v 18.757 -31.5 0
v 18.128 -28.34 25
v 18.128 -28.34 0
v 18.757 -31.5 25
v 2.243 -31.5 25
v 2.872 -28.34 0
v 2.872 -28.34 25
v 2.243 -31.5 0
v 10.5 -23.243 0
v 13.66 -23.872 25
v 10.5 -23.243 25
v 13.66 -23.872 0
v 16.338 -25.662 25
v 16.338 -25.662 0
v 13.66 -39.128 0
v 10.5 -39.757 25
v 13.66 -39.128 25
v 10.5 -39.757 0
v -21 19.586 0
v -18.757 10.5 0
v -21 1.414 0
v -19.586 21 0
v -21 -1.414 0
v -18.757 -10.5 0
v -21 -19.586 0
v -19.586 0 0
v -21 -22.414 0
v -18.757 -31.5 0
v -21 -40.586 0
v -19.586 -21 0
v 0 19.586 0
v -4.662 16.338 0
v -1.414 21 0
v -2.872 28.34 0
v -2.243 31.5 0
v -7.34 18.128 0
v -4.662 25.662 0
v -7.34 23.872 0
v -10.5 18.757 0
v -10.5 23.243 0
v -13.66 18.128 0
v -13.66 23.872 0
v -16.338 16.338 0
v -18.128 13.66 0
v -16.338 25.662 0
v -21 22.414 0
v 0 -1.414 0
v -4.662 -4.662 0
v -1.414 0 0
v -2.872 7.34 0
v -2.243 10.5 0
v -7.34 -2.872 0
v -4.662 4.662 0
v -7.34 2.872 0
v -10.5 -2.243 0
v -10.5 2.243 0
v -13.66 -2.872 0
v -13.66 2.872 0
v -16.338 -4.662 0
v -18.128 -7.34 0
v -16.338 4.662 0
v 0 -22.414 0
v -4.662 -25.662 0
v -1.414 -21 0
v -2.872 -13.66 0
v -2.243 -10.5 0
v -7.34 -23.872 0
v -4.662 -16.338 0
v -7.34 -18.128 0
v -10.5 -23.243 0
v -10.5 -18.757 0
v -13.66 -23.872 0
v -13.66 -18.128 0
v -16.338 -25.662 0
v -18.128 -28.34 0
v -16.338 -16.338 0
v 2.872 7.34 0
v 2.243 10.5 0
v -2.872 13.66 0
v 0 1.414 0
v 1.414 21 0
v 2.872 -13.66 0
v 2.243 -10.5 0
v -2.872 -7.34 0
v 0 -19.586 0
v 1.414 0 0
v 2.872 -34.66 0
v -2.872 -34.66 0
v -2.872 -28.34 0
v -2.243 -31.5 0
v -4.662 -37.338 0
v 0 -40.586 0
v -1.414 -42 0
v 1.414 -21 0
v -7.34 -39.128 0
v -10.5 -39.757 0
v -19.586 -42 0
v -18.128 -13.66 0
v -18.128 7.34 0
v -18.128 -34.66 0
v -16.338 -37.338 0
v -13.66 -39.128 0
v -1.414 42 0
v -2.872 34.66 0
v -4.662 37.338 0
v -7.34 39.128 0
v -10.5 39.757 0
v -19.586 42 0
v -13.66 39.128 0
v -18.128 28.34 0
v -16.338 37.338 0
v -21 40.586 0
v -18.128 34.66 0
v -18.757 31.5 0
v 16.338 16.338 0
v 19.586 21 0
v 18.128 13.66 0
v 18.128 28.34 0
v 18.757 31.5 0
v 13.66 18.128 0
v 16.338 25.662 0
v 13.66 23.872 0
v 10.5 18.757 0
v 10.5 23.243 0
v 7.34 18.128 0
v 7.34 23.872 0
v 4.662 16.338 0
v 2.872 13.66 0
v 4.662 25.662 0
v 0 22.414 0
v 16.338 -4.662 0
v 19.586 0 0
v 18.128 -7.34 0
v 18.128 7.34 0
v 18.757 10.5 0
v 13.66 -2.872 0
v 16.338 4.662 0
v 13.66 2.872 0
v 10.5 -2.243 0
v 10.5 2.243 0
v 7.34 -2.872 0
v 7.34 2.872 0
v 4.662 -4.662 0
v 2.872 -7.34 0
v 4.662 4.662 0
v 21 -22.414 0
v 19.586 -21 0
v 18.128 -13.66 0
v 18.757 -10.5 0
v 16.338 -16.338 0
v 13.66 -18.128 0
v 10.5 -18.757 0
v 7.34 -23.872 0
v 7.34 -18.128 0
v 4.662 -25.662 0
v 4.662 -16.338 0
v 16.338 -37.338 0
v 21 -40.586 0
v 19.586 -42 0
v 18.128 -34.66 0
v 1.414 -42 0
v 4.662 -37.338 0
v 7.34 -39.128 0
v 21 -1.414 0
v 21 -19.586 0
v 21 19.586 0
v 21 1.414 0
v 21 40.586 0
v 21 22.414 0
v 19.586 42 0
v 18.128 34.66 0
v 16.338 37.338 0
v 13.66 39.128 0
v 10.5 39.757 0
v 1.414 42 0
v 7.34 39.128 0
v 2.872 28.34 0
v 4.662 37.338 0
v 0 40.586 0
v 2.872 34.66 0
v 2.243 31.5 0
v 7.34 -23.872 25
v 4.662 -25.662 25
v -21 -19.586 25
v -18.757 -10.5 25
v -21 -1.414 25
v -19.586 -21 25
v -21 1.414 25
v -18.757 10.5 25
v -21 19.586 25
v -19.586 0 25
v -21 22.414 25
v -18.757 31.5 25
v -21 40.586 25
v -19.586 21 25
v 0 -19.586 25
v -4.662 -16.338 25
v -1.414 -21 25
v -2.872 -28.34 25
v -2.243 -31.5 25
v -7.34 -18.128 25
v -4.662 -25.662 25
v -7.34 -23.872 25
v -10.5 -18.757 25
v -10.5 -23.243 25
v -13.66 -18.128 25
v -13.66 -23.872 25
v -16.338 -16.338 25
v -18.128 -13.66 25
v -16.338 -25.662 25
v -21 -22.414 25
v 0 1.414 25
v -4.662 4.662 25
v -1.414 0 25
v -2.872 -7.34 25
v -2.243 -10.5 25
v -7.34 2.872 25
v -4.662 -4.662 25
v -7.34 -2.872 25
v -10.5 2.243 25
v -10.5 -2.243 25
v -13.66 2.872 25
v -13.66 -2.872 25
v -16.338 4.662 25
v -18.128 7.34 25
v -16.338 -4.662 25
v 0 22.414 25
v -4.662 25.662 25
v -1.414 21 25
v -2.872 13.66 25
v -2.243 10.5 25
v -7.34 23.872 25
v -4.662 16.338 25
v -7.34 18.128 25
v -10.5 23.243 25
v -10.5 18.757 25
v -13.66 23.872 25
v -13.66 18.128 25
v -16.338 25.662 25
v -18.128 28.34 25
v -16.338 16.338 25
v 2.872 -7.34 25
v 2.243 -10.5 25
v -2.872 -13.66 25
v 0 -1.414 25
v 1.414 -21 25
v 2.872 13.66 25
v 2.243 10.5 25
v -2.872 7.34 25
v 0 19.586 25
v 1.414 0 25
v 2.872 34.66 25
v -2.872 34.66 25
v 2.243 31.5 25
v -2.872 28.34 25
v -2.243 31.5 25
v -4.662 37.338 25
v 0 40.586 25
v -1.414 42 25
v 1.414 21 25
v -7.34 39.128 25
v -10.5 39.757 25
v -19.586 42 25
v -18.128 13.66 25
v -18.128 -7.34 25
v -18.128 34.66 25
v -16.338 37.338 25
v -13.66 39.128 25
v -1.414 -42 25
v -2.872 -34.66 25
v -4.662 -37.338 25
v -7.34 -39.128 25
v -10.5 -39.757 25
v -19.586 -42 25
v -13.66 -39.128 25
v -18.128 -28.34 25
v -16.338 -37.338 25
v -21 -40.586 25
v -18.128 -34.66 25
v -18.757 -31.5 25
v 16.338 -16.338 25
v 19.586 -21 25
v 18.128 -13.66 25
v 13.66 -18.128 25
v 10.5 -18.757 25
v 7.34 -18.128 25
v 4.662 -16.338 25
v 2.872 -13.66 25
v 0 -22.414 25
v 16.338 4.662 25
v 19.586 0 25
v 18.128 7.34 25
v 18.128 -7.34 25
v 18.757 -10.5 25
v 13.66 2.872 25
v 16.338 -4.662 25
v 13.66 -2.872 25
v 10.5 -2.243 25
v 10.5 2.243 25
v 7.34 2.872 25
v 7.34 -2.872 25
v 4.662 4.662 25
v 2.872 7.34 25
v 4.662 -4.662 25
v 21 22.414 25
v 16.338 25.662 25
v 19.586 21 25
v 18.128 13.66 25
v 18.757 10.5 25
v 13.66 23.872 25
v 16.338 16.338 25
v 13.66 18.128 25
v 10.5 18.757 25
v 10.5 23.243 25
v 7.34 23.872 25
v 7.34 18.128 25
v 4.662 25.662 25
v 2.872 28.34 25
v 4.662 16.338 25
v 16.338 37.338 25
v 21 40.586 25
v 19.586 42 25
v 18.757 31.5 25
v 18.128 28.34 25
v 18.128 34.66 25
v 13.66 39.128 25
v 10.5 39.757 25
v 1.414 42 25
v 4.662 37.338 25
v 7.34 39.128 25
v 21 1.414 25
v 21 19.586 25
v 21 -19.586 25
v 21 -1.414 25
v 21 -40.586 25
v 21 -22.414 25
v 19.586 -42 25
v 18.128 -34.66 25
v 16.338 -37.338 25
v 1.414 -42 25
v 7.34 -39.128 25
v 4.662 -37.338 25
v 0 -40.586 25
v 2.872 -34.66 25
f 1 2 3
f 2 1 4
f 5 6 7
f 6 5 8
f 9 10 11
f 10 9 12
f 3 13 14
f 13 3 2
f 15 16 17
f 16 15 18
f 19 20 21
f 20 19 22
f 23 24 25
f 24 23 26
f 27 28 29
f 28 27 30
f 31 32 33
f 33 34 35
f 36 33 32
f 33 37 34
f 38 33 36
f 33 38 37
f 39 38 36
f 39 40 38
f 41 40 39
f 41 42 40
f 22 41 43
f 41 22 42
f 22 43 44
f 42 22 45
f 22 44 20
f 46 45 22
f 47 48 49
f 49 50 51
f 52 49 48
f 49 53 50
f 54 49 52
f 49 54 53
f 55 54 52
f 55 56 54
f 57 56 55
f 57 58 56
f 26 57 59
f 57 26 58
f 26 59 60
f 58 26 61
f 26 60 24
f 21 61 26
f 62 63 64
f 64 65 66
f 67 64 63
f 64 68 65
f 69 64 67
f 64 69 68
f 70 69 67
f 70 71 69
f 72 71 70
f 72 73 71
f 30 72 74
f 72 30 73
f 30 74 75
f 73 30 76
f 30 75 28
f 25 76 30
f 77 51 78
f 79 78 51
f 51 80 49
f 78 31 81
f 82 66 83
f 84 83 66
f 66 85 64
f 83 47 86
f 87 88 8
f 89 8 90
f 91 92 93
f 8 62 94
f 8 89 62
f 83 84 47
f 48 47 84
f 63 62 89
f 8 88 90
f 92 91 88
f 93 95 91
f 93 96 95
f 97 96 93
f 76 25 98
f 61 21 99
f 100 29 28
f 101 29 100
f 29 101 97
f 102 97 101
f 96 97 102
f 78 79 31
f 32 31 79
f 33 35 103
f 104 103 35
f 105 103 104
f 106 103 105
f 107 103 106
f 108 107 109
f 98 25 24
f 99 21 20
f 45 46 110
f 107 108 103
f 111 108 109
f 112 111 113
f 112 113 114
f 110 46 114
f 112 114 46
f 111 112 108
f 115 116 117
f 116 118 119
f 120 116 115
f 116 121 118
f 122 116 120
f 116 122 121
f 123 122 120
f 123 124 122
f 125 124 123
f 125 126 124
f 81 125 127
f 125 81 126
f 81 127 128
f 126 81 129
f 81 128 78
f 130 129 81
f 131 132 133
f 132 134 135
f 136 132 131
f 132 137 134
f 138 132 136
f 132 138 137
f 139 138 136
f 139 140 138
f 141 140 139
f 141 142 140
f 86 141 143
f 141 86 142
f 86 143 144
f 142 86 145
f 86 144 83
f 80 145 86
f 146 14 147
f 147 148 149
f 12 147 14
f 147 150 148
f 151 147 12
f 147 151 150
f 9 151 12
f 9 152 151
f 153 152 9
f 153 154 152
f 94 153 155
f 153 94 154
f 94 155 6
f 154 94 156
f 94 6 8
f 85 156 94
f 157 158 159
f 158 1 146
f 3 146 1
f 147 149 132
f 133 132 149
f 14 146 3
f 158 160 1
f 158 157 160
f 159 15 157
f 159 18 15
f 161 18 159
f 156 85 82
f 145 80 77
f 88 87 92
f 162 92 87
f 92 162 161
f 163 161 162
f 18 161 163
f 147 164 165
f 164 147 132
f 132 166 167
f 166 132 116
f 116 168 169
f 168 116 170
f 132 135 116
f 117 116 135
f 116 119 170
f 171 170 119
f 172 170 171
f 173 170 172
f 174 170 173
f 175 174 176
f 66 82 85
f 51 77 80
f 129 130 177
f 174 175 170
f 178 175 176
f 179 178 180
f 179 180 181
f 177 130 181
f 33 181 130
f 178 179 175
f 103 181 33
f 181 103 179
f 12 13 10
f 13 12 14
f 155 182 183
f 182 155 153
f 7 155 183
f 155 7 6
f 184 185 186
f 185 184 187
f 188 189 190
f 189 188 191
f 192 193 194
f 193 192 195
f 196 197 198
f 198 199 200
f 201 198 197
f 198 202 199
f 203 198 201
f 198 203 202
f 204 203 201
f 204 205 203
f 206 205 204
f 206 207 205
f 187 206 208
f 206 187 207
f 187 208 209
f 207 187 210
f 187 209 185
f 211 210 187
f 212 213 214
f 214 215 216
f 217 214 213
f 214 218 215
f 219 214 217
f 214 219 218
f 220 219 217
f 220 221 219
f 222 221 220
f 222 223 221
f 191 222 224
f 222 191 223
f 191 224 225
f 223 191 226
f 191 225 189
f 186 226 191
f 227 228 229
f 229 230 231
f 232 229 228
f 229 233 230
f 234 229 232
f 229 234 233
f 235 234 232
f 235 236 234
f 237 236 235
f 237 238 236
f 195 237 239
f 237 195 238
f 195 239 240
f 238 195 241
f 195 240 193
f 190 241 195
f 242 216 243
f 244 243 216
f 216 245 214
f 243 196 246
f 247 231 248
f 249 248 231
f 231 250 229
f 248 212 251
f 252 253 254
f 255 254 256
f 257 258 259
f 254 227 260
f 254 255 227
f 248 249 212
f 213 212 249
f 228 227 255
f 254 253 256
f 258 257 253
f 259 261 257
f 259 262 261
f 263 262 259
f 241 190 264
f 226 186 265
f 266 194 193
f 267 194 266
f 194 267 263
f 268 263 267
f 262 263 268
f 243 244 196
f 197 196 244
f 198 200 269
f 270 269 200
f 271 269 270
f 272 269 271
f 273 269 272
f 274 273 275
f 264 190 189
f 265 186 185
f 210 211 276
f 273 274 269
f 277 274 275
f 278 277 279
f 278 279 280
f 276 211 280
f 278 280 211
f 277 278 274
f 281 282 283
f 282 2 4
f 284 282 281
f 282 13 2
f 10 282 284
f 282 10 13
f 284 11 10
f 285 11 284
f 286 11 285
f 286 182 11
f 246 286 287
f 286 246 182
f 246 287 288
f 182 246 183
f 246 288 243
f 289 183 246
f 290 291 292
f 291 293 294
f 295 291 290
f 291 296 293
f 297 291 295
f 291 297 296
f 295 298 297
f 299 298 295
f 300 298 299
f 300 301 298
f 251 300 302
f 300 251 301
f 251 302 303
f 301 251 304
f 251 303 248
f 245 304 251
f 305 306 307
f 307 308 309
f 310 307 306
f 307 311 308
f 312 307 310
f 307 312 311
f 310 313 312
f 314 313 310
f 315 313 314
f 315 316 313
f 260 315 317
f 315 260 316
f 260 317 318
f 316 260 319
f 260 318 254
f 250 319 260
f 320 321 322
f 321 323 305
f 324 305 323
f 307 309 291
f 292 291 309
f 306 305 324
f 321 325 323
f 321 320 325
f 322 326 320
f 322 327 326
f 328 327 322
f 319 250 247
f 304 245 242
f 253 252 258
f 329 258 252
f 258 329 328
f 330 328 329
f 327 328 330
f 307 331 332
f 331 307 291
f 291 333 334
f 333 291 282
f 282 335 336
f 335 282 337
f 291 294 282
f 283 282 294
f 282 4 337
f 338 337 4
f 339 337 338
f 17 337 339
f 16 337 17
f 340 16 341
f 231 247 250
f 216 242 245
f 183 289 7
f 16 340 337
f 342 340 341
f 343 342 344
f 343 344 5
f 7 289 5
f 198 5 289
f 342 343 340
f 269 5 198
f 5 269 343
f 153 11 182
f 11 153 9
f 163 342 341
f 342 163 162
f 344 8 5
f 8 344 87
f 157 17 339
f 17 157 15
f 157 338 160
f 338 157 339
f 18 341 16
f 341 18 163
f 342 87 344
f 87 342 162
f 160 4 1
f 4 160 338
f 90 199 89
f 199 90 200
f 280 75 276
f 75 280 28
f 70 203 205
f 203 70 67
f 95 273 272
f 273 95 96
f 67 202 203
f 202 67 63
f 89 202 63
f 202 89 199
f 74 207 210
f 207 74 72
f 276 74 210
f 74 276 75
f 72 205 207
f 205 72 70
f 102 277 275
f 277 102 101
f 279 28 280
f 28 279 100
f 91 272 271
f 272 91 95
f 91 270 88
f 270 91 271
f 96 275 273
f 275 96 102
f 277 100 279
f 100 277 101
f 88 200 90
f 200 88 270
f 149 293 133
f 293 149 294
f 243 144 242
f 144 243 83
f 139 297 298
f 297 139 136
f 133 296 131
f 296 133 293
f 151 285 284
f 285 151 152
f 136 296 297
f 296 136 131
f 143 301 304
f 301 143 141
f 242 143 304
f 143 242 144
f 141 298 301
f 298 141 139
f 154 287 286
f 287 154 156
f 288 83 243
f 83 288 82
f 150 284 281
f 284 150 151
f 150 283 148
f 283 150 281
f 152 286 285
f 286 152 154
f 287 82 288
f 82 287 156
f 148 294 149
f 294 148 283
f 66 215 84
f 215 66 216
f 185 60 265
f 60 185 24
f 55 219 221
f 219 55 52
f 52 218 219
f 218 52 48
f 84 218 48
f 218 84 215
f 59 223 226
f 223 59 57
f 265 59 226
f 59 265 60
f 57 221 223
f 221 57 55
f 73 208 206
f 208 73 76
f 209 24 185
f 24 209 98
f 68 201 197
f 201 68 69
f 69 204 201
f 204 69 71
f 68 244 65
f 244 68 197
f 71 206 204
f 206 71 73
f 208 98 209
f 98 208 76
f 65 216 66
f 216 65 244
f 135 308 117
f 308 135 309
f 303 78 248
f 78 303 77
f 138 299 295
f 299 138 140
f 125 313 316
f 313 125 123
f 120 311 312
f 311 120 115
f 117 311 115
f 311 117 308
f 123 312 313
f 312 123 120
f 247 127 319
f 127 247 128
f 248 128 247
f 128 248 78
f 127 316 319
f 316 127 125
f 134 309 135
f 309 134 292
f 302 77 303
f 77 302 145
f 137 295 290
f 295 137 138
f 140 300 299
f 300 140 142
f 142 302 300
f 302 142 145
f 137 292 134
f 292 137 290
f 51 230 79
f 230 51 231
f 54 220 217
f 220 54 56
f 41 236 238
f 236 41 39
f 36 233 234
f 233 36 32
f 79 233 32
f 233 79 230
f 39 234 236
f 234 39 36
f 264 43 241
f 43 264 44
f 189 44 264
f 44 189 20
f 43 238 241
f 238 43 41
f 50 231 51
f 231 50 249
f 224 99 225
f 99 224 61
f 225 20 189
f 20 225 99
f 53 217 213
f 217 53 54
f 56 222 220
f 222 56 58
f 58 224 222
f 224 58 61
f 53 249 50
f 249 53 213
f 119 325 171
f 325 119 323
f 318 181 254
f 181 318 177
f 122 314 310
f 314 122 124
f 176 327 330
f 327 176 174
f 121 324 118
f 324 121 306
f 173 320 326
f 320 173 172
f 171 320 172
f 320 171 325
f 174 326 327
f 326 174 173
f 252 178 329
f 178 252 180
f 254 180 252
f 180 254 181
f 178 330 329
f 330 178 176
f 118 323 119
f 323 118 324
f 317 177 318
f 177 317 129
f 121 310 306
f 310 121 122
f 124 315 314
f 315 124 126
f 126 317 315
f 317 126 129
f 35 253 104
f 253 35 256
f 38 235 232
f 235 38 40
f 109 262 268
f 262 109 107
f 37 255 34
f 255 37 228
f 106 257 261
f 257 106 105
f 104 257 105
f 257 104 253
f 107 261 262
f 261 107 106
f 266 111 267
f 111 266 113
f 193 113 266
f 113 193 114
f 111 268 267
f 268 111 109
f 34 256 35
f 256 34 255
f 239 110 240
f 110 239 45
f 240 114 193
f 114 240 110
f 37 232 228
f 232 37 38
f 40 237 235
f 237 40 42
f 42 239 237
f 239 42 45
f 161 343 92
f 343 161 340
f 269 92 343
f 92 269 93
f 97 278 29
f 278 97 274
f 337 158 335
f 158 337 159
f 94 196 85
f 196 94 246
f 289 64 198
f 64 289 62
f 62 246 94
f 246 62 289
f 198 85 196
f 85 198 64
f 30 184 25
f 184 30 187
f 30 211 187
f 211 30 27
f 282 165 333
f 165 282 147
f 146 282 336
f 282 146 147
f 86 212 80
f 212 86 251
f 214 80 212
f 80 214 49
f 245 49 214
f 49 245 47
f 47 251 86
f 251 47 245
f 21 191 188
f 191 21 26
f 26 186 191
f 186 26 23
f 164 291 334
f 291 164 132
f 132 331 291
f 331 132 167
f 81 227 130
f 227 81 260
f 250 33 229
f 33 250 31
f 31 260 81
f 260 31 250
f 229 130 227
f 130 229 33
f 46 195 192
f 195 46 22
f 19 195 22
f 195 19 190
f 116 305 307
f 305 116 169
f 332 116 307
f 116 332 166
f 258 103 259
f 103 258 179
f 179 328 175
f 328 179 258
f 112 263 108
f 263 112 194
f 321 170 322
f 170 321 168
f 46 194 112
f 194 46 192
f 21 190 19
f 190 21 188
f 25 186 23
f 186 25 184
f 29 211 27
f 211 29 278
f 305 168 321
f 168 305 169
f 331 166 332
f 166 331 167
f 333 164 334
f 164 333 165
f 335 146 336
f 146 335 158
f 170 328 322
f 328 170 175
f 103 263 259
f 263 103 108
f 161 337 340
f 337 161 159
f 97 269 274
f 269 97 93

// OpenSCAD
// file: zcube.scad
// This function creates a cube with a given x/y either above (f=1) or below (f=-1) the z axis.
module zcube(dimensions, z=0, f=1, x=0, y=0, bom=false) {
	if (bom) {
		echo(bom, dimensions);
	}
	
	translate([x*dimensions[0]/2, y*dimensions[1]/2, dimensions[2]/2 * f + z]) cube(dimensions, true);
}

module zring(dimensions, thickness, z=0, f=1) {
	render() difference() {
		zcube([dimensions[0]+thickness/2, dimensions[1]+thickness/2, dimensions[2]], z=z, f=f);
		zcube([dimensions[0]-thickness/2, dimensions[1]-thickness/2, dimensions[2]], z=z, f=f);
	}
}

module rcube(dimensions, d, z=0, f=1) {
	dx = dimensions[0]/2 - d/2;
	dy = dimensions[1]/2 - d/2;
	dz = dimensions[2]/2 * (f-1) + z;
	
	hull() {
		translate([-dx, -dy, dz]) cylinder(h=dimensions[2], d=d);
		translate([-dx, dy, dz]) cylinder(h=dimensions[2], d=d);
		translate([dx, -dy, dz]) cylinder(h=dimensions[2], d=d);
		translate([dx, dy, dz]) cylinder(h=dimensions[2], d=d);
	}
}

module zcorners() {
	children();
	mirror([1, 0, 0]) children();
	
	mirror([0, 1, 0]) {
		children();
		mirror([1, 0, 0]) children();
	}
}
// file: bolts.scad
$radial_error = 0.1;
$fn = 16;

// This is for making holes.
module cylinder_outer(height, radius, fn=$fn) {
	fudge = 1/cos(180/fn);
	cylinder(h=height,r=radius*fudge+$radial_error, $fn=fn);
}

// This is for making things that fit in holes.
module cylinder_inner(height, radius, fn=$fn) {
	cylinder(h=height,r=radius-$radial_error,$fn=fn);
}

// Make a hole for a bolt/screw combination.
module bolt(diameter=3, depth=8, nut_offset=2, shaft_length=10, inset=10) {
	hole(diameter, depth, inset);
	hull() {
		shaft_width = diameter;
		translate([0, 0, nut_offset]) rotate(360/12, [0, 0, 1]) cylinder_outer(diameter, shaft_width, 6);
		translate([0, shaft_length, nut_offset]) rotate(360/12, [0, 0, 1]) cylinder_outer(diameter, shaft_width, 6);
	}
}

// Make a hole. The diameter is the size of the screw (e.g. 3 for M3). Depth is how far the hole should go for the thread, and inset is how far out there should be a hole for the head to go.
module hole(diameter=3, depth=6, inset=10) {
	cylinder_outer(depth, diameter/2);
	translate([0, 0, depth]) cylinder_outer(inset, diameter, 32);
}

module countersunk_hole(diameter=3, depth=6, inset=10) {
	hole(diameter, depth, inset);
	translate([0, 0, depth-diameter/2]) cylinder(r1=diameter/2+$radial_error, r2=diameter+$radial_error, h=diameter/2);
}

module mounting_hole(diameter=3, depth=6, inset=10, outset=3) {
	difference() {
		cylinder_outer(depth, diameter/2+outset);
		hole(diameter=diameter, depth=depth, inset=inset);
	}
}

rotate(90, [1, 0, 0]) difference() {
	cube([30, 10, 10]);
	translate([5, 5, 0]) bolt(diameter=3, depth=8);
	translate([15, 5, 0]) bolt(diameter=4, depth=8);
	translate([25, 5, 0]) countersunk_hole(diameter=4, depth=8);
}
// main file
use <bolts.scad>;
use <zcube.scad>;

// suitable for 688ZZ bearings
bearing_diameter = 16;
inner_diameter = bearing_diameter * 0.9;
bearing_depth = 5;

height = 25;

module bearing_cutout() {
	cylinder_outer(height, bearing_diameter/2);
//	cylinder_outer(bearing_depth, bearing_diameter/2);
//	translate([0, 0, height - bearing_depth]) cylinder_outer(bearing_depth, bearing_diameter/2);
}

difference() {
	zcube([42, 42*2, height]);
	
	for (i=[-1.5:1.0:1.5]) {
		translate([42/4, i*(42/2), 0]) bearing_cutout(height);
		translate([-42/4, i*(42/2), 0]) bearing_cutout(height);
	}
	
	for (i=[-2:1.0:2]) {
		translate([0, i*(42/2), 0]) rotate([0, 0, 45]) zcube([2, 2, height]);
		translate([-42/2, i*(42/2), 0]) rotate([0, 0, 45]) zcube([2, 2, height]);
		translate([42/2, i*(42/2), 0]) rotate([0, 0, 45]) zcube([2, 2, height]);
	}
}
